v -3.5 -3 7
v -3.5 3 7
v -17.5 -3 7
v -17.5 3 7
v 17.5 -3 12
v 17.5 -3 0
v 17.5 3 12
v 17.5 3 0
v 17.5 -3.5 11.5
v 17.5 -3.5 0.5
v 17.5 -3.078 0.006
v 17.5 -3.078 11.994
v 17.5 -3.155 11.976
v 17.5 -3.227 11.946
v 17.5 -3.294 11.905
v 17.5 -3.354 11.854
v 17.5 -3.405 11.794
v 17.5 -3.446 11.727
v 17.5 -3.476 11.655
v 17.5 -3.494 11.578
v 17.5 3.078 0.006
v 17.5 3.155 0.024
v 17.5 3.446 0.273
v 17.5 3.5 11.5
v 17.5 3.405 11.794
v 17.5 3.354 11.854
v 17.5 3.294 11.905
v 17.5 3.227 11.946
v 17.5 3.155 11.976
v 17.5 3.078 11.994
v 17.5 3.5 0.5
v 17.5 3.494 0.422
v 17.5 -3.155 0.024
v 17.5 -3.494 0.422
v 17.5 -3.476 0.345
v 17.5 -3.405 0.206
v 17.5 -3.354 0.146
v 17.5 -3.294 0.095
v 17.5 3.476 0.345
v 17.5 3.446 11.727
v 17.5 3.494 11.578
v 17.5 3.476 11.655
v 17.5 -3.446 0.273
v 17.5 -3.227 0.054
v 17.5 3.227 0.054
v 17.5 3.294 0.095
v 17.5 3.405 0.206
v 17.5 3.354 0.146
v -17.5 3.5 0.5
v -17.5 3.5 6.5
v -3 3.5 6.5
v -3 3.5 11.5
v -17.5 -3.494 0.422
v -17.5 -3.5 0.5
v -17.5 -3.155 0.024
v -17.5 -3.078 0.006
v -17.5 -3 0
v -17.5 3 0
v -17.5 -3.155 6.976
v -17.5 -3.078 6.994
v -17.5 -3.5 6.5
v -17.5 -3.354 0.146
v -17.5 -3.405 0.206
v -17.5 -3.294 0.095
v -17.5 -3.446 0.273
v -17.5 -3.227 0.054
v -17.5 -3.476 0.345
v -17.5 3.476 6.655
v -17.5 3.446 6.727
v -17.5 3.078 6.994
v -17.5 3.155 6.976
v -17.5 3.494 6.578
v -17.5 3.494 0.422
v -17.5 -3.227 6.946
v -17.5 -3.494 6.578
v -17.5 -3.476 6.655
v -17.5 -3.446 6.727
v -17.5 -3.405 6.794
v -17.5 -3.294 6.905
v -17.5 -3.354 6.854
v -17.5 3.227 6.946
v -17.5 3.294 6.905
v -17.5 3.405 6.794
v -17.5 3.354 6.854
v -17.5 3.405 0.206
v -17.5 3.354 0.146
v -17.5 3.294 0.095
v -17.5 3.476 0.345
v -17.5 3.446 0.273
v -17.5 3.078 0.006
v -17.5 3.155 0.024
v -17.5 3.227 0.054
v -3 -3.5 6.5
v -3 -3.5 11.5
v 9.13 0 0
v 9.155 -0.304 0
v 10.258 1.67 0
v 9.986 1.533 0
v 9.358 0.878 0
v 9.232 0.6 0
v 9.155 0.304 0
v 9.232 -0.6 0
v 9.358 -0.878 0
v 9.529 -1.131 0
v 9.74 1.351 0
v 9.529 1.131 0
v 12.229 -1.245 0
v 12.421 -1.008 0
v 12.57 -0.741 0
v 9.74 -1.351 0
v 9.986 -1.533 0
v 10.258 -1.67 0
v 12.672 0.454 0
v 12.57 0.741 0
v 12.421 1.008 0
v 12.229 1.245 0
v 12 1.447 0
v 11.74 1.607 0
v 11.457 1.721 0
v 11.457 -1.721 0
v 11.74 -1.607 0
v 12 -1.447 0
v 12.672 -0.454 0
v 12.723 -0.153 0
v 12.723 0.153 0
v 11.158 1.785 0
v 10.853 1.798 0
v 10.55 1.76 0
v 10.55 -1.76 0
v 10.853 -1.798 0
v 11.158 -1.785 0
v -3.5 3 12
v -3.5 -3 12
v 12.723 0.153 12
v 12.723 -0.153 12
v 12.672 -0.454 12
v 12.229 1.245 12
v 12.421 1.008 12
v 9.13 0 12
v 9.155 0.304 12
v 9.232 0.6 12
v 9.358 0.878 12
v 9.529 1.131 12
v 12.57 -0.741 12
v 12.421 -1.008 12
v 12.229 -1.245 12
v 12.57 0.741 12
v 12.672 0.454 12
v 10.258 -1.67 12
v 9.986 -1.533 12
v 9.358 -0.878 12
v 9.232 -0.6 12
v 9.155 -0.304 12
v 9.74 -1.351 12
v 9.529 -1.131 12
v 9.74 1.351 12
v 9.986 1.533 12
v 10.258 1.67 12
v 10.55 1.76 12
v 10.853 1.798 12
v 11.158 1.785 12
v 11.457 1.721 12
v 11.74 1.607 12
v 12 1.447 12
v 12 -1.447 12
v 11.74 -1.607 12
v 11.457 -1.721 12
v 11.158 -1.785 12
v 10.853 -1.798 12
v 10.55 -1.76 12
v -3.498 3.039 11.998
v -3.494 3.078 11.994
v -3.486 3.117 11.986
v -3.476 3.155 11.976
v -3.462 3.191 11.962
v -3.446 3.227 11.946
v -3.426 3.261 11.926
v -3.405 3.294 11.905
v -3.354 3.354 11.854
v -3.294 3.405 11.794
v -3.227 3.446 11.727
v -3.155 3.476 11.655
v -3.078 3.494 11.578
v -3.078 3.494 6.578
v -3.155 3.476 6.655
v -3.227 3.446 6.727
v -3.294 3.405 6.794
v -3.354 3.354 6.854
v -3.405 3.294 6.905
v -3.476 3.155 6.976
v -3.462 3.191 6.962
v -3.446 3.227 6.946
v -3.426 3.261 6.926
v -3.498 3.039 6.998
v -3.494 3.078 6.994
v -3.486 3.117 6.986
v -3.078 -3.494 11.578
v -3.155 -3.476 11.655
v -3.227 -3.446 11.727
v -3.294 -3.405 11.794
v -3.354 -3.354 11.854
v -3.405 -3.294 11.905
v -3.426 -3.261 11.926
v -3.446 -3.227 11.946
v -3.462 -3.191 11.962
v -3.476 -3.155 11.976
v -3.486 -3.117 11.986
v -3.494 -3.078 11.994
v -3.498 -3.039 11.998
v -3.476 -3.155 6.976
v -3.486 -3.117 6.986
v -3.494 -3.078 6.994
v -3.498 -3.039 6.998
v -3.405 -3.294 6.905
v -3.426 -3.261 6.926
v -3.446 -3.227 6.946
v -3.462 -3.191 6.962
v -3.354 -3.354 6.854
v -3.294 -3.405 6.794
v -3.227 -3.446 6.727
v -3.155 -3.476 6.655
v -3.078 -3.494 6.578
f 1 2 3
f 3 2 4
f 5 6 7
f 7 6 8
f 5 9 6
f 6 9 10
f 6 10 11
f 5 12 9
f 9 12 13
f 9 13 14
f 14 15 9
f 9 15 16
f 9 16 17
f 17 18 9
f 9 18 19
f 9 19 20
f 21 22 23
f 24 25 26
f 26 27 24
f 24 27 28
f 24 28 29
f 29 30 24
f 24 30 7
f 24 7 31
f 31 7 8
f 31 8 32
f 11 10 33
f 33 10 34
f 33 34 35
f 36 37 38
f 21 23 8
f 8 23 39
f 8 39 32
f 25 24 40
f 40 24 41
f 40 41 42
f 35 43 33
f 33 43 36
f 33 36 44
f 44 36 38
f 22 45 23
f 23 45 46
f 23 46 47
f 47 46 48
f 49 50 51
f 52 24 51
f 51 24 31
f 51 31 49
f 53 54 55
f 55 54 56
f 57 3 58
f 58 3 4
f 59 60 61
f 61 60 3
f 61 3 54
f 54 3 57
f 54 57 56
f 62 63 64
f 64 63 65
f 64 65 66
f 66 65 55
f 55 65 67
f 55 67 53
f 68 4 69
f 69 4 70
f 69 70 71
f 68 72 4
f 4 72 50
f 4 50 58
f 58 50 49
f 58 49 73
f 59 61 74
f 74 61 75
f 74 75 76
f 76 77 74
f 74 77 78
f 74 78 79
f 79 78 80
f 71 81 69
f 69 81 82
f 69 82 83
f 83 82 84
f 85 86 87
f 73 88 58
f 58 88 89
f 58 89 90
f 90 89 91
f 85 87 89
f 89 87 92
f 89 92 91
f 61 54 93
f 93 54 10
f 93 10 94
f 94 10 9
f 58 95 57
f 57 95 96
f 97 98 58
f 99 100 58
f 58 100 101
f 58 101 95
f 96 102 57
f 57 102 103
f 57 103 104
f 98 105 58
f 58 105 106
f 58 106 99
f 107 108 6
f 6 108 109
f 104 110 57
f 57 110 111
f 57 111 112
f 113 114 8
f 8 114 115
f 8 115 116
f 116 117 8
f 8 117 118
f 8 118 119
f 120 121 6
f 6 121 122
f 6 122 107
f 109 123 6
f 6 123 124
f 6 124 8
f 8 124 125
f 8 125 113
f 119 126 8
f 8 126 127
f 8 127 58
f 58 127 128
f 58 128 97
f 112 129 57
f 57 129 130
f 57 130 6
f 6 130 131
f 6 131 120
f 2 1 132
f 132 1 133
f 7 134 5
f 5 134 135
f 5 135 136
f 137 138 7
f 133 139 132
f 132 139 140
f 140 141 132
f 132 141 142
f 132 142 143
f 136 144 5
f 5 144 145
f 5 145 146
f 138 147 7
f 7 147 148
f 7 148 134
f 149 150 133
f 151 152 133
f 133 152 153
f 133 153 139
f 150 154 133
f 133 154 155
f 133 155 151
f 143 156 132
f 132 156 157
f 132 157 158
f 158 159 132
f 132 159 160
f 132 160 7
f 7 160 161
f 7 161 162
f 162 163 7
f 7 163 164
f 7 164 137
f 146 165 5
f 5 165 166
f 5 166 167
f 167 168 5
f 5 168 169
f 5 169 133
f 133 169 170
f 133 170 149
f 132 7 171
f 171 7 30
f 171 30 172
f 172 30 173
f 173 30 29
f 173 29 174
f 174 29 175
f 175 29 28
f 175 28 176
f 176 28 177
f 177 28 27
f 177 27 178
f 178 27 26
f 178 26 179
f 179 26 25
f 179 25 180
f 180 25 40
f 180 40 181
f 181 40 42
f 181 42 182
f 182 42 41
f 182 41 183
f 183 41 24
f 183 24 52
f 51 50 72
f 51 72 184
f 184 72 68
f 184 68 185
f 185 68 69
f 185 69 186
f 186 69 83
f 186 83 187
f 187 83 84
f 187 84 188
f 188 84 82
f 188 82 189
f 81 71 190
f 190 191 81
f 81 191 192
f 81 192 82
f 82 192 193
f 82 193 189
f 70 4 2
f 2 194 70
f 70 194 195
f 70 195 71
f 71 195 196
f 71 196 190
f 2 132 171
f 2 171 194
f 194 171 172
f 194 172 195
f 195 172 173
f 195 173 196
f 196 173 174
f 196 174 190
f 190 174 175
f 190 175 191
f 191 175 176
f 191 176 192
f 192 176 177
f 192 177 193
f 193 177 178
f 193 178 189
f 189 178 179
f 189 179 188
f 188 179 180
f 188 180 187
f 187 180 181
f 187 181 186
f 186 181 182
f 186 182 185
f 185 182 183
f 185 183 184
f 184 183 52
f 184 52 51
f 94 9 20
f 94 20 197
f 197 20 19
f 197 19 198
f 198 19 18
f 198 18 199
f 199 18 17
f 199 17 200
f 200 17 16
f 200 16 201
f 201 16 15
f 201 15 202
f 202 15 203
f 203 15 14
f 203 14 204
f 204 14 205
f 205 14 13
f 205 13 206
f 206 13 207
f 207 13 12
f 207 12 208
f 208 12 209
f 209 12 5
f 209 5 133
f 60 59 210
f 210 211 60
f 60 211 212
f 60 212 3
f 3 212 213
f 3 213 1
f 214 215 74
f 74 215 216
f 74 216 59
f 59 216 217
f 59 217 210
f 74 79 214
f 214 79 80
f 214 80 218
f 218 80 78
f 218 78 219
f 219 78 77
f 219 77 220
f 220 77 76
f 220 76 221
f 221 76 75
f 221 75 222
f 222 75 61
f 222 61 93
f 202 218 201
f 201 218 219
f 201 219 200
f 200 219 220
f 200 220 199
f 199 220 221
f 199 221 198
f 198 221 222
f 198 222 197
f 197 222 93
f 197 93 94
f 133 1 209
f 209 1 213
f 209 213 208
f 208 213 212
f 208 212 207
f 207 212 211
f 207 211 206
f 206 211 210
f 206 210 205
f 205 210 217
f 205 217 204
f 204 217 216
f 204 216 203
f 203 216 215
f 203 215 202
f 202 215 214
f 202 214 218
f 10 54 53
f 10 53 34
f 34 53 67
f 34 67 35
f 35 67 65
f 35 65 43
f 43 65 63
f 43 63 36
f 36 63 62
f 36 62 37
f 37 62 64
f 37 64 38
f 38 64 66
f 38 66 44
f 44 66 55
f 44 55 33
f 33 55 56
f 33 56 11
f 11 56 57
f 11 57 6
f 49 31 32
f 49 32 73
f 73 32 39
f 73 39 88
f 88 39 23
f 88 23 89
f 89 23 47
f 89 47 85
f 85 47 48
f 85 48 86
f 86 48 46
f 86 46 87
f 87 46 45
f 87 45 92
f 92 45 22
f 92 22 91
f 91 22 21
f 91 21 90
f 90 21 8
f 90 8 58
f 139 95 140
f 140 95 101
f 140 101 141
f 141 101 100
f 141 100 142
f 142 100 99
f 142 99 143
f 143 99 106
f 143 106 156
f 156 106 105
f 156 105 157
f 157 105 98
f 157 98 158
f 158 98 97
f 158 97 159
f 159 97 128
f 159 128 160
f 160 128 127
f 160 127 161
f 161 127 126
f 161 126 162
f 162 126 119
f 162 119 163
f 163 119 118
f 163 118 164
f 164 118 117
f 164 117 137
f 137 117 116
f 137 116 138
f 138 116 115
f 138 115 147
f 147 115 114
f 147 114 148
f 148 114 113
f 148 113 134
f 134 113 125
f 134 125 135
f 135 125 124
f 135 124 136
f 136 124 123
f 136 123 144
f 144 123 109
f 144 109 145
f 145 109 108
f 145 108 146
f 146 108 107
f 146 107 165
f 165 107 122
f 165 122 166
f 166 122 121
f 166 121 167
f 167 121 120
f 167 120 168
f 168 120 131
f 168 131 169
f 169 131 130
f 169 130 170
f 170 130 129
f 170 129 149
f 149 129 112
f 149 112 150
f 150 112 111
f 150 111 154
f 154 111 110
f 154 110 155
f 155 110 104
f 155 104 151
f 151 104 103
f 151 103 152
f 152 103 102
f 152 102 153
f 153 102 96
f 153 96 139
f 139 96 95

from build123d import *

# Parameters (mm, degrees)
SKETCH1_W                  = 35
SKETCH1_H                  = 7
BOSS_EXTRUDE1_DEPTH        = 7
SKETCH3_W                  = 21
SKETCH3_H                  = 7
BOSS_EXTRUDE3_DEPTH        = 5
FILLET1_R                  = 0.5
F_3_6_3_6_DIAMETER_HOLE1_D = 3.6


with BuildPart() as part:
    # Sketch1 → Boss-Extrude1 (new body)
    with BuildSketch(Plane.XY):
        Rectangle(SKETCH1_W, SKETCH1_H)
    extrude(amount=BOSS_EXTRUDE1_DEPTH)

    # Sketch3 → Boss-Extrude3 (add)
    with BuildSketch(Plane.XY.offset(7)):
        with Locations((7, 0)):
            Rectangle(SKETCH3_W, SKETCH3_H)
    extrude(amount=BOSS_EXTRUDE3_DEPTH)

    # Fillet1
    fillet1_edges = [part.edges().sort_by_distance(p)[0] for p in [
        (-10.5, 3.5, 7),
        (-3.5, 3.5, 9.5),
        (-3.5, -3.5, 9.5),
        (-10.5, -3.5, 7),
        (7, 3.5, 12),
        (7, -3.5, 12),
        (0, -3.5, 0),
        (0, 3.5, 0),
    ]]
    fillet(fillet1_edges, radius=FILLET1_R)

    # Ø3.6 (3.6) Diameter Hole1 (through all)
    with Locations(Plane(origin=(10.929593105, 0, 0), x_dir=(-1, 0, 0), z_dir=(0, 0, -1))):
        with Locations((0, 0)):
            Hole(F_3_6_3_6_DIAMETER_HOLE1_D / 2)


solid = part.part
